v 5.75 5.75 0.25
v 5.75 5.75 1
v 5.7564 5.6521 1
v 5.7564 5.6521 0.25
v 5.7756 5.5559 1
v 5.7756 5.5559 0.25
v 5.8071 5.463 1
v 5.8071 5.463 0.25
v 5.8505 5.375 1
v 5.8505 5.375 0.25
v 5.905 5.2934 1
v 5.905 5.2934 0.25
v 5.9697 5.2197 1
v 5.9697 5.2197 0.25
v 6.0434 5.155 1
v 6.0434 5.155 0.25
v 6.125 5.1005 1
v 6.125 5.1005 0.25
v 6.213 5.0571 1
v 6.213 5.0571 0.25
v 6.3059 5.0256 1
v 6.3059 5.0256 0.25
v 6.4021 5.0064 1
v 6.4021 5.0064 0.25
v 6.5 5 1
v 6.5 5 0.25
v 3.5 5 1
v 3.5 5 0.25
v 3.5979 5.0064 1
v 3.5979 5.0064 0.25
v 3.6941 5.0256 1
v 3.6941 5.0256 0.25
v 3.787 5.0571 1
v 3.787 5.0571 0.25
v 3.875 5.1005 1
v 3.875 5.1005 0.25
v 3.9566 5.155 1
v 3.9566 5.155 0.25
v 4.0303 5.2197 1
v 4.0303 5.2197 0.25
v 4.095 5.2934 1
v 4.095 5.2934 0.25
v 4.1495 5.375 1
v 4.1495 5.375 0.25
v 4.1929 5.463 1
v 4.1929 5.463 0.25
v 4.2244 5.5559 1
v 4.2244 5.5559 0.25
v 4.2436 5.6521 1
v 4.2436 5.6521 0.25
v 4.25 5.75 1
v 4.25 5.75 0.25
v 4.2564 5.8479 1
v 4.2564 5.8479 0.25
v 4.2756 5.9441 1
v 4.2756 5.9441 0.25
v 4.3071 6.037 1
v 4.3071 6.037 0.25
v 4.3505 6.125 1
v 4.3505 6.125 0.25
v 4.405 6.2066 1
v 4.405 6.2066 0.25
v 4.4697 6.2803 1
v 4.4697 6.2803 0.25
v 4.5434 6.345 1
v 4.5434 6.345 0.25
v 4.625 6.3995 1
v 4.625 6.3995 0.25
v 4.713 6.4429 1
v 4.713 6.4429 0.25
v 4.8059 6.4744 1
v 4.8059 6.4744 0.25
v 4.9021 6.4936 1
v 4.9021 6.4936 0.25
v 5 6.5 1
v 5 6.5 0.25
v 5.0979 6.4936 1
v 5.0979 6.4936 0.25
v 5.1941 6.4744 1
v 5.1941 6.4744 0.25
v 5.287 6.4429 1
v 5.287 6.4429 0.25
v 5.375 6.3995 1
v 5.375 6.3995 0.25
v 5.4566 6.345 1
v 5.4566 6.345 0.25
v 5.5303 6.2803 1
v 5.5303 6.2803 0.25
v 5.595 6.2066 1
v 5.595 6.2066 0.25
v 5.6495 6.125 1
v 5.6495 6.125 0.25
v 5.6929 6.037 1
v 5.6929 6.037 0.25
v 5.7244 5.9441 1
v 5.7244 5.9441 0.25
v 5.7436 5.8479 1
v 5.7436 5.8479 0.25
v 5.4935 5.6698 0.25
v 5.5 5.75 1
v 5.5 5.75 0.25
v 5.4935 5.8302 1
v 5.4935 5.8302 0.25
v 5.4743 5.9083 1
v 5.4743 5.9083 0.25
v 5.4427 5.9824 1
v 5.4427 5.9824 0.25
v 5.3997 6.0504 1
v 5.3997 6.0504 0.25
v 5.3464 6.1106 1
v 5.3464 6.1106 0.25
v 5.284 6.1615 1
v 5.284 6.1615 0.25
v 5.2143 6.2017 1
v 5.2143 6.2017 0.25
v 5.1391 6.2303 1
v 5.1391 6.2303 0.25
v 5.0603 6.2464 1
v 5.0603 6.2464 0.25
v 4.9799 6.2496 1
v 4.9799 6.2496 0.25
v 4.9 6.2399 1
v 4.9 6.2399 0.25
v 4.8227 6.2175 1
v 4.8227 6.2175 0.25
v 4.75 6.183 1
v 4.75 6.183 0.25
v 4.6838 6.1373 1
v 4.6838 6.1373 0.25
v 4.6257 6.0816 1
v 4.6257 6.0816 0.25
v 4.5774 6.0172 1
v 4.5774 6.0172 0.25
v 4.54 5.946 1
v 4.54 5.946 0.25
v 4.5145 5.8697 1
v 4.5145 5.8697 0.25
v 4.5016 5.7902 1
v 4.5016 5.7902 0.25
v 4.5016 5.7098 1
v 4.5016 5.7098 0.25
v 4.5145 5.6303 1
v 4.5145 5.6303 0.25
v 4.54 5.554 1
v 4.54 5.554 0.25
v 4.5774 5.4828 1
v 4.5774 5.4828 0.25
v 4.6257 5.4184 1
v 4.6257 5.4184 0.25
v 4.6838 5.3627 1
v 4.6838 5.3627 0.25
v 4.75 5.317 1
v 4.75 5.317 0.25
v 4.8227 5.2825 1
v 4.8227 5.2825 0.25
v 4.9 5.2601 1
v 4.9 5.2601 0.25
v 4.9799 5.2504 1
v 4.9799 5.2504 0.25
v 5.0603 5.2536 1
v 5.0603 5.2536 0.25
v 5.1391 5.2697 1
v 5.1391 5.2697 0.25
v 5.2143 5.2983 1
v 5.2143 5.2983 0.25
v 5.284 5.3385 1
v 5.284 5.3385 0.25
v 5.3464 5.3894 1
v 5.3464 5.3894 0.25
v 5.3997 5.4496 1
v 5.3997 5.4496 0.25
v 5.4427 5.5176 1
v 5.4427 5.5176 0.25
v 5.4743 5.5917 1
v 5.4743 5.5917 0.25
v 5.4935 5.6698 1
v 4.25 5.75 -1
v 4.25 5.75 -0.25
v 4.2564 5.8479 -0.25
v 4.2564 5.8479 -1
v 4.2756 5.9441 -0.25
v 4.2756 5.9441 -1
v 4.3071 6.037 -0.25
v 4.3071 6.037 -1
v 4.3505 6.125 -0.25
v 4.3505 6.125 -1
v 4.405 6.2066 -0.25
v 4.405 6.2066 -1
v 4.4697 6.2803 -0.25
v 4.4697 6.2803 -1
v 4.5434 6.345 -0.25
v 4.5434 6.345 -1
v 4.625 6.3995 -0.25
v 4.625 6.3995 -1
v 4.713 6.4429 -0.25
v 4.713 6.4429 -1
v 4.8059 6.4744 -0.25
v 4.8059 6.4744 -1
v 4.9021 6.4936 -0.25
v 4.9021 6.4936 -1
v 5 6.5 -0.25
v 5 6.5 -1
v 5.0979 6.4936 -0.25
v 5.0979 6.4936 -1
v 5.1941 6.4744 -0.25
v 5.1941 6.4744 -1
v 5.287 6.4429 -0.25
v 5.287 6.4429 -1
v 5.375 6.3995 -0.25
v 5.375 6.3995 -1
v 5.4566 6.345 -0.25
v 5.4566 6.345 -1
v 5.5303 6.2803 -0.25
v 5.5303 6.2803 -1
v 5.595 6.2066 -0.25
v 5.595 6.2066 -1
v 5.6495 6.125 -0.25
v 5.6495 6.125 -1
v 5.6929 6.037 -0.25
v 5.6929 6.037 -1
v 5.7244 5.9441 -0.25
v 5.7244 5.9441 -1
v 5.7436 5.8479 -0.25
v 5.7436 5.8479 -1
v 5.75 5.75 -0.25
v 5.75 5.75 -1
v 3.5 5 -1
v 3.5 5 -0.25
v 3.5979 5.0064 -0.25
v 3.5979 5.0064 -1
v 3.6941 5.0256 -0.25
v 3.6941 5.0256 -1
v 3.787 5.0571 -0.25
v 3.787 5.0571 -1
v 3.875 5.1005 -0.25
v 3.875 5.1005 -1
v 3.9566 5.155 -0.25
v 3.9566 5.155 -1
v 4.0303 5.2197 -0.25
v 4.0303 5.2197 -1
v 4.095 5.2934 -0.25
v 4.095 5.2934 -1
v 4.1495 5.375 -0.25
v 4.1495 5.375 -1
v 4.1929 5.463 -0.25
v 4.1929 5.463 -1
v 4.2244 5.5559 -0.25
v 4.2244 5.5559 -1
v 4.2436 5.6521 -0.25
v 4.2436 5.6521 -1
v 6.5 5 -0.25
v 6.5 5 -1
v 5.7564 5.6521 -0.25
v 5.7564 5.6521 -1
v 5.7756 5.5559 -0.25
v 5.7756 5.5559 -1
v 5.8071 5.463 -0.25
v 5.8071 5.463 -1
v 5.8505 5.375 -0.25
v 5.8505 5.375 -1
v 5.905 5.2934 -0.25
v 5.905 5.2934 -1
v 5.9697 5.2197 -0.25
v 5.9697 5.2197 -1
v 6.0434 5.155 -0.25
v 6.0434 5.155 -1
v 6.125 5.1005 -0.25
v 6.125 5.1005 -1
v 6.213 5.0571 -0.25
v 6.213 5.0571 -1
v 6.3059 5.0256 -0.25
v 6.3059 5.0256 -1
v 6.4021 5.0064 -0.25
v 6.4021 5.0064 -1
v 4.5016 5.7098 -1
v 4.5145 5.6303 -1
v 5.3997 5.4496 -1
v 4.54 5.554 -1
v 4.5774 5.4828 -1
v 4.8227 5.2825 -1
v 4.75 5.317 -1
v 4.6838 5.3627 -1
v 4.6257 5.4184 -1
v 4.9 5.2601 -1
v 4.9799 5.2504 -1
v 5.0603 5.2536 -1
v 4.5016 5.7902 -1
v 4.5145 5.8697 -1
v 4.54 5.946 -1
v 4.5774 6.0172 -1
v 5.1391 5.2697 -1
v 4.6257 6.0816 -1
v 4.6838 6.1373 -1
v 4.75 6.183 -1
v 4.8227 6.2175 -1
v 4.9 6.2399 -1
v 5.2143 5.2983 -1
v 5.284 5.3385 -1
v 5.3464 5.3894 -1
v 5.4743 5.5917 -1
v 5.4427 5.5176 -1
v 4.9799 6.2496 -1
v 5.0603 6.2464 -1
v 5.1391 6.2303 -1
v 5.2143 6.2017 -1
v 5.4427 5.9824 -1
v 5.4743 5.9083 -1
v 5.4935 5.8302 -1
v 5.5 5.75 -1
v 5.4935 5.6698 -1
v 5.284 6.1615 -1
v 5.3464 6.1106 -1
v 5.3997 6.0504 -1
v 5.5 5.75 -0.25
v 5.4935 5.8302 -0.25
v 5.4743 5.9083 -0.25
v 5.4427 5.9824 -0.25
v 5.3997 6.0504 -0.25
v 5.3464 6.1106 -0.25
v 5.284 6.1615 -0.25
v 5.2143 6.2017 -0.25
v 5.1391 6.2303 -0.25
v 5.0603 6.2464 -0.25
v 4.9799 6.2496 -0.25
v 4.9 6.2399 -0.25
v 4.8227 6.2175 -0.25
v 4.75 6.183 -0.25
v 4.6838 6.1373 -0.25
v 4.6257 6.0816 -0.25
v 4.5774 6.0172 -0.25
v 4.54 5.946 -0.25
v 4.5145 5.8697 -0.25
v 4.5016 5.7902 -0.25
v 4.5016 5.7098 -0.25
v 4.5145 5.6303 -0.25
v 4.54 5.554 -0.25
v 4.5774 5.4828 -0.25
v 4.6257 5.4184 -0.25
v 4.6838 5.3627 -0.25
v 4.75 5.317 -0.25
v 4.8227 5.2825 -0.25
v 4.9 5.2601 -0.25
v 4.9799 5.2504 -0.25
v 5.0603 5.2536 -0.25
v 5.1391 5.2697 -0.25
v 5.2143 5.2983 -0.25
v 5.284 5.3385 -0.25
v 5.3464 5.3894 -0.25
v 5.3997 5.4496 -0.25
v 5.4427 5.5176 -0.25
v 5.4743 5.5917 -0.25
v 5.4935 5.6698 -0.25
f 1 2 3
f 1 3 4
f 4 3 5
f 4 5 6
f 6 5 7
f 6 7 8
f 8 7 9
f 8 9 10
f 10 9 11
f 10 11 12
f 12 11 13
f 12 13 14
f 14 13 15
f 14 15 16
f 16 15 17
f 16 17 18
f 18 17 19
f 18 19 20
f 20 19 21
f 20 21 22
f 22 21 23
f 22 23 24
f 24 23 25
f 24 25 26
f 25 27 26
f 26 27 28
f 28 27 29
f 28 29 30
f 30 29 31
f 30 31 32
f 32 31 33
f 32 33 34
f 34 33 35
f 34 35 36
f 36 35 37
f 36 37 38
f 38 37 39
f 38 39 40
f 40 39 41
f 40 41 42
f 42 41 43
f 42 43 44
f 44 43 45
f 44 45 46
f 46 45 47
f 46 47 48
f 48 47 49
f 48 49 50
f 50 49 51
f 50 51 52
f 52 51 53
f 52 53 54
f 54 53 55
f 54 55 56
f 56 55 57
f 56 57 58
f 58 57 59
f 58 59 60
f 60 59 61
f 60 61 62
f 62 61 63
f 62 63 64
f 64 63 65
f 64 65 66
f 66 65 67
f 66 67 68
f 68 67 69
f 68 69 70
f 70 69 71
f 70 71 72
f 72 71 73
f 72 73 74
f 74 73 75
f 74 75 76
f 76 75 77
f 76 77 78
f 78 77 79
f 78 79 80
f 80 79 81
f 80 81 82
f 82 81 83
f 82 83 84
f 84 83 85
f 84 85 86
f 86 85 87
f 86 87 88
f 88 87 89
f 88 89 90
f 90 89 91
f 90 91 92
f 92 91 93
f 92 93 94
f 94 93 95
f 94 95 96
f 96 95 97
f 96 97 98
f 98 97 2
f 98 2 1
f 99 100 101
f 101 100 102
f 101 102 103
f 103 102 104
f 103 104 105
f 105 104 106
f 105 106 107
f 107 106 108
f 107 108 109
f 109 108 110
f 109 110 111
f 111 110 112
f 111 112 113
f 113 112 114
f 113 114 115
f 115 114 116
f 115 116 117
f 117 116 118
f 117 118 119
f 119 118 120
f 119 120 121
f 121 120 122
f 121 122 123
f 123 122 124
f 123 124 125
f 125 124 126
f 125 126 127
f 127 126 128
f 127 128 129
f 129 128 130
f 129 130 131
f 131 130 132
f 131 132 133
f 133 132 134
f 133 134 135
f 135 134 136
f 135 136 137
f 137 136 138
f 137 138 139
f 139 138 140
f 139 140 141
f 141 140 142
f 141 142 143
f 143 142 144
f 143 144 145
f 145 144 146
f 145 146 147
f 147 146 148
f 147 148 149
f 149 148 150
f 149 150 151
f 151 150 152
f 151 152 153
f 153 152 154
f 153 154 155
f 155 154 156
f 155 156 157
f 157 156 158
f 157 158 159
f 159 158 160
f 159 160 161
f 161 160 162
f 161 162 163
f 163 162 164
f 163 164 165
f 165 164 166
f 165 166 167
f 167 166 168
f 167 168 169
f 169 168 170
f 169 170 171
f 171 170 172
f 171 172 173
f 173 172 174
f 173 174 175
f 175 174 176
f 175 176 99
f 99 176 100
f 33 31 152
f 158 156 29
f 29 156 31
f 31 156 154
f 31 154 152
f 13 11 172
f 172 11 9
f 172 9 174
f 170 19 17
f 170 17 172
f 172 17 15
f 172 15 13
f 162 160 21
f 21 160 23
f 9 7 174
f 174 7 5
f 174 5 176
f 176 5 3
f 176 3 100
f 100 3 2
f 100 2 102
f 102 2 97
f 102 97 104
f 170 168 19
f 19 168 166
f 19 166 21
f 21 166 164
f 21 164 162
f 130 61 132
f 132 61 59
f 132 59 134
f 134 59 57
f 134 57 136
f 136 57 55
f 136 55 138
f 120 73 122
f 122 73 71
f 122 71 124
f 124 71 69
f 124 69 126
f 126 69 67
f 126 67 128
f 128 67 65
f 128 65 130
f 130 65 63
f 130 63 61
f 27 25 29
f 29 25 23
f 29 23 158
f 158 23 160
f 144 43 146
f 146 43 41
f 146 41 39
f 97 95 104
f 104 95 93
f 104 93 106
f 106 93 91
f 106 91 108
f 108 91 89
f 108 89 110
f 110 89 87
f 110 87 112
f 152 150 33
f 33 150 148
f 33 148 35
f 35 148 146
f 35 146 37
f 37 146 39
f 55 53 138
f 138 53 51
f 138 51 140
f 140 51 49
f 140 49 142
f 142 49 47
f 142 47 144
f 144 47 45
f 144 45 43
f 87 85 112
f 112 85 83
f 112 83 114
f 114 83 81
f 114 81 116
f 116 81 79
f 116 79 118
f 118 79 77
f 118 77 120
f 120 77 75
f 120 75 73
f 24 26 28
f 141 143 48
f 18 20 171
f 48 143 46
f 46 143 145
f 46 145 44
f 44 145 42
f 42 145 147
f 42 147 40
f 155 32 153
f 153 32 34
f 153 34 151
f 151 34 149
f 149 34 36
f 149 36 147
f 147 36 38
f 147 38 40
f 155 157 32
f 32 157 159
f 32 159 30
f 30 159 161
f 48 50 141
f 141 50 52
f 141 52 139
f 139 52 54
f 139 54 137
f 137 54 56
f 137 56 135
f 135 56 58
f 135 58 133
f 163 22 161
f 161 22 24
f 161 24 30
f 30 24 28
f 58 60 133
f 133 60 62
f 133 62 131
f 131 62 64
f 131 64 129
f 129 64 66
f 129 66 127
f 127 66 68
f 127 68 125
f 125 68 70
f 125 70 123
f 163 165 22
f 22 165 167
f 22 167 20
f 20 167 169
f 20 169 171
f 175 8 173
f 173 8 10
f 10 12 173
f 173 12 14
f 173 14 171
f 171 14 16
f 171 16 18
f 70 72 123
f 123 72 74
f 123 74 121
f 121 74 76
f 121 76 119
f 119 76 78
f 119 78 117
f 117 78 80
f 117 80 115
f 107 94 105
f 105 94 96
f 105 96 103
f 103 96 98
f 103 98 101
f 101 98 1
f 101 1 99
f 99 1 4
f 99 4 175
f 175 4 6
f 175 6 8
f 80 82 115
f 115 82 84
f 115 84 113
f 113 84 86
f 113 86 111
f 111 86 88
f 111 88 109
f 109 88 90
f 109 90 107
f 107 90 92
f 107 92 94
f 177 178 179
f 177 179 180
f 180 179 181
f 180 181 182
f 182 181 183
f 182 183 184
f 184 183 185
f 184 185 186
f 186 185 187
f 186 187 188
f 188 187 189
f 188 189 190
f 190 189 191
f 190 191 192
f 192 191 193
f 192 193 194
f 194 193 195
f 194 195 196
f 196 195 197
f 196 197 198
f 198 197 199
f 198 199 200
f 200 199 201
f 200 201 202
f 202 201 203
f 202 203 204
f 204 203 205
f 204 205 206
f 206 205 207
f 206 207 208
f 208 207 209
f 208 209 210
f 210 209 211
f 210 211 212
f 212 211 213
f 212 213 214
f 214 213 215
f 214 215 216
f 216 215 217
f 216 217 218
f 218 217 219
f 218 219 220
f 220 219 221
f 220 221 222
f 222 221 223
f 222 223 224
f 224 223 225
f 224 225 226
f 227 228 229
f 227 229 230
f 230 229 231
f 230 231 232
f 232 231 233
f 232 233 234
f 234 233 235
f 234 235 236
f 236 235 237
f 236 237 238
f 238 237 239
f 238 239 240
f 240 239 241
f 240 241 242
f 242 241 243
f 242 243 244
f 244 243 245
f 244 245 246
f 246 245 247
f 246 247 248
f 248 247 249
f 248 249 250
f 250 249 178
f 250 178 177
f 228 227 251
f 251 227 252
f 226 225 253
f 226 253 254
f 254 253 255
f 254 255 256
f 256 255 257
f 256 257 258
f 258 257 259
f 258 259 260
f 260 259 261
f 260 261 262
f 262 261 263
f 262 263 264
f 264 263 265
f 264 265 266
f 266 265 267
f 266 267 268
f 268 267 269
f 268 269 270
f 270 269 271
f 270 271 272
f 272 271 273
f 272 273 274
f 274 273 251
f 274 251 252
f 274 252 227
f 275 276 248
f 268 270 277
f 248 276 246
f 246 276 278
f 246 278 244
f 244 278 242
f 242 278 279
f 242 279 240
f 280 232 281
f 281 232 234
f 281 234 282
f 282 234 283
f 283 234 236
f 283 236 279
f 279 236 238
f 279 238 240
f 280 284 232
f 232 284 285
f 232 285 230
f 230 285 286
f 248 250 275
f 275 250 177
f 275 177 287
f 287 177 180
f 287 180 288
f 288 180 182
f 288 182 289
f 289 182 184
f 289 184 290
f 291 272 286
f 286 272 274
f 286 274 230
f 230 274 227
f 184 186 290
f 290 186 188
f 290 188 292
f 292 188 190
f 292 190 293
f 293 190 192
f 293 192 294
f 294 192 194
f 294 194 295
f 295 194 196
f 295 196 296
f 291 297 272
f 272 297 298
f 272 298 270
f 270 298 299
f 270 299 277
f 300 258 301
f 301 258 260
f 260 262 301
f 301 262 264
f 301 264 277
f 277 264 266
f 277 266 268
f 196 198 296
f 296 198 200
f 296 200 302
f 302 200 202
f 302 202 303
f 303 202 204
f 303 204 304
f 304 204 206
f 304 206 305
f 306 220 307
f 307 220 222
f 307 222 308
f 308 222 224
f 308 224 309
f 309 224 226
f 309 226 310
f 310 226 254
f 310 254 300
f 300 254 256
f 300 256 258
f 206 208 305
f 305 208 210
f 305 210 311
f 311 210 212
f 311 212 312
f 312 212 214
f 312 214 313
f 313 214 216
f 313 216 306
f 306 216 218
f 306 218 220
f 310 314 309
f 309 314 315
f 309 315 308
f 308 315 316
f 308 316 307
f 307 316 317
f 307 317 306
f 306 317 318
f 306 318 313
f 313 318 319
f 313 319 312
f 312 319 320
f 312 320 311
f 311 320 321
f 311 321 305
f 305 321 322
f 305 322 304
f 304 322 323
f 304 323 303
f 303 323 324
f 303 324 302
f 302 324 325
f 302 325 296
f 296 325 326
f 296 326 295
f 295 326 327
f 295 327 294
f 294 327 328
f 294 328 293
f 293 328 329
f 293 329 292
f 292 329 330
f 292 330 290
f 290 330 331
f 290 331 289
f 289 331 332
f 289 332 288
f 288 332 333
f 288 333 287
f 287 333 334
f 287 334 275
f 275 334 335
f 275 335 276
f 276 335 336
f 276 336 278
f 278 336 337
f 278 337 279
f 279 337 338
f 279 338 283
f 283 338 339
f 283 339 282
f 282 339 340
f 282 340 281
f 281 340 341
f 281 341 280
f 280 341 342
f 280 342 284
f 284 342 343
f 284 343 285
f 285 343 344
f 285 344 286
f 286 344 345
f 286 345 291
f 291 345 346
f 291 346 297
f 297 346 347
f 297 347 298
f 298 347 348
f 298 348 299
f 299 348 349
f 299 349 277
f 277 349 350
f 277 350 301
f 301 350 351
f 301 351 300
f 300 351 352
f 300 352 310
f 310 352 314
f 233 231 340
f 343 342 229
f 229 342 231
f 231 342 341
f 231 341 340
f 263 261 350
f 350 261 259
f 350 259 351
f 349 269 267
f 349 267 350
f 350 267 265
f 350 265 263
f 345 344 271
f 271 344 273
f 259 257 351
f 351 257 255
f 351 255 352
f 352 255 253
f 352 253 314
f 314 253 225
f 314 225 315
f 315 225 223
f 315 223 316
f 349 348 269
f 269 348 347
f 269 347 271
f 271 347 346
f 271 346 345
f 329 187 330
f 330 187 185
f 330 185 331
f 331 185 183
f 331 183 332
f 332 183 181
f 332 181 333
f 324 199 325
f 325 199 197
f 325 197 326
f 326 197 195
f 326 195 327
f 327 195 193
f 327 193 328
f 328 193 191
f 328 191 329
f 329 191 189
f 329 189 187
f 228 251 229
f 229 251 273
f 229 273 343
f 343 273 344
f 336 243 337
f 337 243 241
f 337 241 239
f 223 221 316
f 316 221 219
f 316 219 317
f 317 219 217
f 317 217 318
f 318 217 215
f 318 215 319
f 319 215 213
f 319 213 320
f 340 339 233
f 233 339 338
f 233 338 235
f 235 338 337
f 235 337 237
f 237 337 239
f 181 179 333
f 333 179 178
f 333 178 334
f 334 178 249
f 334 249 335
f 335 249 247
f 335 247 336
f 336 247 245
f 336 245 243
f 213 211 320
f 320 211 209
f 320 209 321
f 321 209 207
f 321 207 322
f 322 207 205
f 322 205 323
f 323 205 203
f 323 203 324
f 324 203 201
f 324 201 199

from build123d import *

# Parameters (mm, degrees)
EXTRUDE_4_DEPTH          = 1
EXTRUDE_4_DEPTH_BACK     = 1
SKETCH_2_R               = 0.5
CUT_EXTRUDE_2_DEPTH      = 0.25
CUT_EXTRUDE_2_DEPTH_BACK = 0.25
SKETCH_2_7_R             = 0.5


with BuildPart() as part:
    # 草圖2 → 填料-伸長4 (new, two sides: drawn at the far end of the back side and taken through both)
    with BuildSketch(Plane.XY.offset(-EXTRUDE_4_DEPTH_BACK)):
        with BuildLine():
            Line((3.5, 5), (6.5, 5))
            ThreePointArc((6.5, 5), (5.969669914, 5.219669914), (5.75, 5.75))
            ThreePointArc((5.75, 5.75), (5, 6.5), (4.25, 5.75))
            ThreePointArc((4.25, 5.75), (4.030330086, 5.219669914), (3.5, 5))
        make_face()
        with Locations((5, 5.75)):
            Circle(SKETCH_2_R, mode=Mode.SUBTRACT)
    extrude(amount=EXTRUDE_4_DEPTH + EXTRUDE_4_DEPTH_BACK)

    # 草圖2<7> → 除料-伸長2 (cut, two sides: drawn at the far end of the back side and taken through both)
    with BuildSketch(Plane.XY.offset(-CUT_EXTRUDE_2_DEPTH_BACK)):
        with BuildLine():
            Line((3.5, 5), (6.5, 5))
            ThreePointArc((6.5, 5), (5.969669914, 5.219669914), (5.75, 5.75))
            ThreePointArc((5.75, 5.75), (5, 6.5), (4.25, 5.75))
            ThreePointArc((4.25, 5.75), (4.030330086, 5.219669914), (3.5, 5))
        make_face()
        with Locations((5, 5.75)):
            Circle(SKETCH_2_7_R, mode=Mode.SUBTRACT)
    extrude(amount=CUT_EXTRUDE_2_DEPTH + CUT_EXTRUDE_2_DEPTH_BACK, mode=Mode.SUBTRACT)


with BuildPart() as cut_extrude_2_piece_1:
    # of the separate pieces the step leaves, piece 1, a body of its own (cut_extrude_2_pieces)
    add(part.part.solids().sort_by_distance((3.5, 5, 1))[0])


with BuildPart() as cut_extrude_2_piece_2:
    # of the separate pieces the step leaves, piece 2, a body of its own (cut_extrude_2_pieces)
    add(part.part.solids().sort_by_distance((3.5, 5, -0.25))[0])


solid = Compound([cut_extrude_2_piece_1.part, cut_extrude_2_piece_2.part])
